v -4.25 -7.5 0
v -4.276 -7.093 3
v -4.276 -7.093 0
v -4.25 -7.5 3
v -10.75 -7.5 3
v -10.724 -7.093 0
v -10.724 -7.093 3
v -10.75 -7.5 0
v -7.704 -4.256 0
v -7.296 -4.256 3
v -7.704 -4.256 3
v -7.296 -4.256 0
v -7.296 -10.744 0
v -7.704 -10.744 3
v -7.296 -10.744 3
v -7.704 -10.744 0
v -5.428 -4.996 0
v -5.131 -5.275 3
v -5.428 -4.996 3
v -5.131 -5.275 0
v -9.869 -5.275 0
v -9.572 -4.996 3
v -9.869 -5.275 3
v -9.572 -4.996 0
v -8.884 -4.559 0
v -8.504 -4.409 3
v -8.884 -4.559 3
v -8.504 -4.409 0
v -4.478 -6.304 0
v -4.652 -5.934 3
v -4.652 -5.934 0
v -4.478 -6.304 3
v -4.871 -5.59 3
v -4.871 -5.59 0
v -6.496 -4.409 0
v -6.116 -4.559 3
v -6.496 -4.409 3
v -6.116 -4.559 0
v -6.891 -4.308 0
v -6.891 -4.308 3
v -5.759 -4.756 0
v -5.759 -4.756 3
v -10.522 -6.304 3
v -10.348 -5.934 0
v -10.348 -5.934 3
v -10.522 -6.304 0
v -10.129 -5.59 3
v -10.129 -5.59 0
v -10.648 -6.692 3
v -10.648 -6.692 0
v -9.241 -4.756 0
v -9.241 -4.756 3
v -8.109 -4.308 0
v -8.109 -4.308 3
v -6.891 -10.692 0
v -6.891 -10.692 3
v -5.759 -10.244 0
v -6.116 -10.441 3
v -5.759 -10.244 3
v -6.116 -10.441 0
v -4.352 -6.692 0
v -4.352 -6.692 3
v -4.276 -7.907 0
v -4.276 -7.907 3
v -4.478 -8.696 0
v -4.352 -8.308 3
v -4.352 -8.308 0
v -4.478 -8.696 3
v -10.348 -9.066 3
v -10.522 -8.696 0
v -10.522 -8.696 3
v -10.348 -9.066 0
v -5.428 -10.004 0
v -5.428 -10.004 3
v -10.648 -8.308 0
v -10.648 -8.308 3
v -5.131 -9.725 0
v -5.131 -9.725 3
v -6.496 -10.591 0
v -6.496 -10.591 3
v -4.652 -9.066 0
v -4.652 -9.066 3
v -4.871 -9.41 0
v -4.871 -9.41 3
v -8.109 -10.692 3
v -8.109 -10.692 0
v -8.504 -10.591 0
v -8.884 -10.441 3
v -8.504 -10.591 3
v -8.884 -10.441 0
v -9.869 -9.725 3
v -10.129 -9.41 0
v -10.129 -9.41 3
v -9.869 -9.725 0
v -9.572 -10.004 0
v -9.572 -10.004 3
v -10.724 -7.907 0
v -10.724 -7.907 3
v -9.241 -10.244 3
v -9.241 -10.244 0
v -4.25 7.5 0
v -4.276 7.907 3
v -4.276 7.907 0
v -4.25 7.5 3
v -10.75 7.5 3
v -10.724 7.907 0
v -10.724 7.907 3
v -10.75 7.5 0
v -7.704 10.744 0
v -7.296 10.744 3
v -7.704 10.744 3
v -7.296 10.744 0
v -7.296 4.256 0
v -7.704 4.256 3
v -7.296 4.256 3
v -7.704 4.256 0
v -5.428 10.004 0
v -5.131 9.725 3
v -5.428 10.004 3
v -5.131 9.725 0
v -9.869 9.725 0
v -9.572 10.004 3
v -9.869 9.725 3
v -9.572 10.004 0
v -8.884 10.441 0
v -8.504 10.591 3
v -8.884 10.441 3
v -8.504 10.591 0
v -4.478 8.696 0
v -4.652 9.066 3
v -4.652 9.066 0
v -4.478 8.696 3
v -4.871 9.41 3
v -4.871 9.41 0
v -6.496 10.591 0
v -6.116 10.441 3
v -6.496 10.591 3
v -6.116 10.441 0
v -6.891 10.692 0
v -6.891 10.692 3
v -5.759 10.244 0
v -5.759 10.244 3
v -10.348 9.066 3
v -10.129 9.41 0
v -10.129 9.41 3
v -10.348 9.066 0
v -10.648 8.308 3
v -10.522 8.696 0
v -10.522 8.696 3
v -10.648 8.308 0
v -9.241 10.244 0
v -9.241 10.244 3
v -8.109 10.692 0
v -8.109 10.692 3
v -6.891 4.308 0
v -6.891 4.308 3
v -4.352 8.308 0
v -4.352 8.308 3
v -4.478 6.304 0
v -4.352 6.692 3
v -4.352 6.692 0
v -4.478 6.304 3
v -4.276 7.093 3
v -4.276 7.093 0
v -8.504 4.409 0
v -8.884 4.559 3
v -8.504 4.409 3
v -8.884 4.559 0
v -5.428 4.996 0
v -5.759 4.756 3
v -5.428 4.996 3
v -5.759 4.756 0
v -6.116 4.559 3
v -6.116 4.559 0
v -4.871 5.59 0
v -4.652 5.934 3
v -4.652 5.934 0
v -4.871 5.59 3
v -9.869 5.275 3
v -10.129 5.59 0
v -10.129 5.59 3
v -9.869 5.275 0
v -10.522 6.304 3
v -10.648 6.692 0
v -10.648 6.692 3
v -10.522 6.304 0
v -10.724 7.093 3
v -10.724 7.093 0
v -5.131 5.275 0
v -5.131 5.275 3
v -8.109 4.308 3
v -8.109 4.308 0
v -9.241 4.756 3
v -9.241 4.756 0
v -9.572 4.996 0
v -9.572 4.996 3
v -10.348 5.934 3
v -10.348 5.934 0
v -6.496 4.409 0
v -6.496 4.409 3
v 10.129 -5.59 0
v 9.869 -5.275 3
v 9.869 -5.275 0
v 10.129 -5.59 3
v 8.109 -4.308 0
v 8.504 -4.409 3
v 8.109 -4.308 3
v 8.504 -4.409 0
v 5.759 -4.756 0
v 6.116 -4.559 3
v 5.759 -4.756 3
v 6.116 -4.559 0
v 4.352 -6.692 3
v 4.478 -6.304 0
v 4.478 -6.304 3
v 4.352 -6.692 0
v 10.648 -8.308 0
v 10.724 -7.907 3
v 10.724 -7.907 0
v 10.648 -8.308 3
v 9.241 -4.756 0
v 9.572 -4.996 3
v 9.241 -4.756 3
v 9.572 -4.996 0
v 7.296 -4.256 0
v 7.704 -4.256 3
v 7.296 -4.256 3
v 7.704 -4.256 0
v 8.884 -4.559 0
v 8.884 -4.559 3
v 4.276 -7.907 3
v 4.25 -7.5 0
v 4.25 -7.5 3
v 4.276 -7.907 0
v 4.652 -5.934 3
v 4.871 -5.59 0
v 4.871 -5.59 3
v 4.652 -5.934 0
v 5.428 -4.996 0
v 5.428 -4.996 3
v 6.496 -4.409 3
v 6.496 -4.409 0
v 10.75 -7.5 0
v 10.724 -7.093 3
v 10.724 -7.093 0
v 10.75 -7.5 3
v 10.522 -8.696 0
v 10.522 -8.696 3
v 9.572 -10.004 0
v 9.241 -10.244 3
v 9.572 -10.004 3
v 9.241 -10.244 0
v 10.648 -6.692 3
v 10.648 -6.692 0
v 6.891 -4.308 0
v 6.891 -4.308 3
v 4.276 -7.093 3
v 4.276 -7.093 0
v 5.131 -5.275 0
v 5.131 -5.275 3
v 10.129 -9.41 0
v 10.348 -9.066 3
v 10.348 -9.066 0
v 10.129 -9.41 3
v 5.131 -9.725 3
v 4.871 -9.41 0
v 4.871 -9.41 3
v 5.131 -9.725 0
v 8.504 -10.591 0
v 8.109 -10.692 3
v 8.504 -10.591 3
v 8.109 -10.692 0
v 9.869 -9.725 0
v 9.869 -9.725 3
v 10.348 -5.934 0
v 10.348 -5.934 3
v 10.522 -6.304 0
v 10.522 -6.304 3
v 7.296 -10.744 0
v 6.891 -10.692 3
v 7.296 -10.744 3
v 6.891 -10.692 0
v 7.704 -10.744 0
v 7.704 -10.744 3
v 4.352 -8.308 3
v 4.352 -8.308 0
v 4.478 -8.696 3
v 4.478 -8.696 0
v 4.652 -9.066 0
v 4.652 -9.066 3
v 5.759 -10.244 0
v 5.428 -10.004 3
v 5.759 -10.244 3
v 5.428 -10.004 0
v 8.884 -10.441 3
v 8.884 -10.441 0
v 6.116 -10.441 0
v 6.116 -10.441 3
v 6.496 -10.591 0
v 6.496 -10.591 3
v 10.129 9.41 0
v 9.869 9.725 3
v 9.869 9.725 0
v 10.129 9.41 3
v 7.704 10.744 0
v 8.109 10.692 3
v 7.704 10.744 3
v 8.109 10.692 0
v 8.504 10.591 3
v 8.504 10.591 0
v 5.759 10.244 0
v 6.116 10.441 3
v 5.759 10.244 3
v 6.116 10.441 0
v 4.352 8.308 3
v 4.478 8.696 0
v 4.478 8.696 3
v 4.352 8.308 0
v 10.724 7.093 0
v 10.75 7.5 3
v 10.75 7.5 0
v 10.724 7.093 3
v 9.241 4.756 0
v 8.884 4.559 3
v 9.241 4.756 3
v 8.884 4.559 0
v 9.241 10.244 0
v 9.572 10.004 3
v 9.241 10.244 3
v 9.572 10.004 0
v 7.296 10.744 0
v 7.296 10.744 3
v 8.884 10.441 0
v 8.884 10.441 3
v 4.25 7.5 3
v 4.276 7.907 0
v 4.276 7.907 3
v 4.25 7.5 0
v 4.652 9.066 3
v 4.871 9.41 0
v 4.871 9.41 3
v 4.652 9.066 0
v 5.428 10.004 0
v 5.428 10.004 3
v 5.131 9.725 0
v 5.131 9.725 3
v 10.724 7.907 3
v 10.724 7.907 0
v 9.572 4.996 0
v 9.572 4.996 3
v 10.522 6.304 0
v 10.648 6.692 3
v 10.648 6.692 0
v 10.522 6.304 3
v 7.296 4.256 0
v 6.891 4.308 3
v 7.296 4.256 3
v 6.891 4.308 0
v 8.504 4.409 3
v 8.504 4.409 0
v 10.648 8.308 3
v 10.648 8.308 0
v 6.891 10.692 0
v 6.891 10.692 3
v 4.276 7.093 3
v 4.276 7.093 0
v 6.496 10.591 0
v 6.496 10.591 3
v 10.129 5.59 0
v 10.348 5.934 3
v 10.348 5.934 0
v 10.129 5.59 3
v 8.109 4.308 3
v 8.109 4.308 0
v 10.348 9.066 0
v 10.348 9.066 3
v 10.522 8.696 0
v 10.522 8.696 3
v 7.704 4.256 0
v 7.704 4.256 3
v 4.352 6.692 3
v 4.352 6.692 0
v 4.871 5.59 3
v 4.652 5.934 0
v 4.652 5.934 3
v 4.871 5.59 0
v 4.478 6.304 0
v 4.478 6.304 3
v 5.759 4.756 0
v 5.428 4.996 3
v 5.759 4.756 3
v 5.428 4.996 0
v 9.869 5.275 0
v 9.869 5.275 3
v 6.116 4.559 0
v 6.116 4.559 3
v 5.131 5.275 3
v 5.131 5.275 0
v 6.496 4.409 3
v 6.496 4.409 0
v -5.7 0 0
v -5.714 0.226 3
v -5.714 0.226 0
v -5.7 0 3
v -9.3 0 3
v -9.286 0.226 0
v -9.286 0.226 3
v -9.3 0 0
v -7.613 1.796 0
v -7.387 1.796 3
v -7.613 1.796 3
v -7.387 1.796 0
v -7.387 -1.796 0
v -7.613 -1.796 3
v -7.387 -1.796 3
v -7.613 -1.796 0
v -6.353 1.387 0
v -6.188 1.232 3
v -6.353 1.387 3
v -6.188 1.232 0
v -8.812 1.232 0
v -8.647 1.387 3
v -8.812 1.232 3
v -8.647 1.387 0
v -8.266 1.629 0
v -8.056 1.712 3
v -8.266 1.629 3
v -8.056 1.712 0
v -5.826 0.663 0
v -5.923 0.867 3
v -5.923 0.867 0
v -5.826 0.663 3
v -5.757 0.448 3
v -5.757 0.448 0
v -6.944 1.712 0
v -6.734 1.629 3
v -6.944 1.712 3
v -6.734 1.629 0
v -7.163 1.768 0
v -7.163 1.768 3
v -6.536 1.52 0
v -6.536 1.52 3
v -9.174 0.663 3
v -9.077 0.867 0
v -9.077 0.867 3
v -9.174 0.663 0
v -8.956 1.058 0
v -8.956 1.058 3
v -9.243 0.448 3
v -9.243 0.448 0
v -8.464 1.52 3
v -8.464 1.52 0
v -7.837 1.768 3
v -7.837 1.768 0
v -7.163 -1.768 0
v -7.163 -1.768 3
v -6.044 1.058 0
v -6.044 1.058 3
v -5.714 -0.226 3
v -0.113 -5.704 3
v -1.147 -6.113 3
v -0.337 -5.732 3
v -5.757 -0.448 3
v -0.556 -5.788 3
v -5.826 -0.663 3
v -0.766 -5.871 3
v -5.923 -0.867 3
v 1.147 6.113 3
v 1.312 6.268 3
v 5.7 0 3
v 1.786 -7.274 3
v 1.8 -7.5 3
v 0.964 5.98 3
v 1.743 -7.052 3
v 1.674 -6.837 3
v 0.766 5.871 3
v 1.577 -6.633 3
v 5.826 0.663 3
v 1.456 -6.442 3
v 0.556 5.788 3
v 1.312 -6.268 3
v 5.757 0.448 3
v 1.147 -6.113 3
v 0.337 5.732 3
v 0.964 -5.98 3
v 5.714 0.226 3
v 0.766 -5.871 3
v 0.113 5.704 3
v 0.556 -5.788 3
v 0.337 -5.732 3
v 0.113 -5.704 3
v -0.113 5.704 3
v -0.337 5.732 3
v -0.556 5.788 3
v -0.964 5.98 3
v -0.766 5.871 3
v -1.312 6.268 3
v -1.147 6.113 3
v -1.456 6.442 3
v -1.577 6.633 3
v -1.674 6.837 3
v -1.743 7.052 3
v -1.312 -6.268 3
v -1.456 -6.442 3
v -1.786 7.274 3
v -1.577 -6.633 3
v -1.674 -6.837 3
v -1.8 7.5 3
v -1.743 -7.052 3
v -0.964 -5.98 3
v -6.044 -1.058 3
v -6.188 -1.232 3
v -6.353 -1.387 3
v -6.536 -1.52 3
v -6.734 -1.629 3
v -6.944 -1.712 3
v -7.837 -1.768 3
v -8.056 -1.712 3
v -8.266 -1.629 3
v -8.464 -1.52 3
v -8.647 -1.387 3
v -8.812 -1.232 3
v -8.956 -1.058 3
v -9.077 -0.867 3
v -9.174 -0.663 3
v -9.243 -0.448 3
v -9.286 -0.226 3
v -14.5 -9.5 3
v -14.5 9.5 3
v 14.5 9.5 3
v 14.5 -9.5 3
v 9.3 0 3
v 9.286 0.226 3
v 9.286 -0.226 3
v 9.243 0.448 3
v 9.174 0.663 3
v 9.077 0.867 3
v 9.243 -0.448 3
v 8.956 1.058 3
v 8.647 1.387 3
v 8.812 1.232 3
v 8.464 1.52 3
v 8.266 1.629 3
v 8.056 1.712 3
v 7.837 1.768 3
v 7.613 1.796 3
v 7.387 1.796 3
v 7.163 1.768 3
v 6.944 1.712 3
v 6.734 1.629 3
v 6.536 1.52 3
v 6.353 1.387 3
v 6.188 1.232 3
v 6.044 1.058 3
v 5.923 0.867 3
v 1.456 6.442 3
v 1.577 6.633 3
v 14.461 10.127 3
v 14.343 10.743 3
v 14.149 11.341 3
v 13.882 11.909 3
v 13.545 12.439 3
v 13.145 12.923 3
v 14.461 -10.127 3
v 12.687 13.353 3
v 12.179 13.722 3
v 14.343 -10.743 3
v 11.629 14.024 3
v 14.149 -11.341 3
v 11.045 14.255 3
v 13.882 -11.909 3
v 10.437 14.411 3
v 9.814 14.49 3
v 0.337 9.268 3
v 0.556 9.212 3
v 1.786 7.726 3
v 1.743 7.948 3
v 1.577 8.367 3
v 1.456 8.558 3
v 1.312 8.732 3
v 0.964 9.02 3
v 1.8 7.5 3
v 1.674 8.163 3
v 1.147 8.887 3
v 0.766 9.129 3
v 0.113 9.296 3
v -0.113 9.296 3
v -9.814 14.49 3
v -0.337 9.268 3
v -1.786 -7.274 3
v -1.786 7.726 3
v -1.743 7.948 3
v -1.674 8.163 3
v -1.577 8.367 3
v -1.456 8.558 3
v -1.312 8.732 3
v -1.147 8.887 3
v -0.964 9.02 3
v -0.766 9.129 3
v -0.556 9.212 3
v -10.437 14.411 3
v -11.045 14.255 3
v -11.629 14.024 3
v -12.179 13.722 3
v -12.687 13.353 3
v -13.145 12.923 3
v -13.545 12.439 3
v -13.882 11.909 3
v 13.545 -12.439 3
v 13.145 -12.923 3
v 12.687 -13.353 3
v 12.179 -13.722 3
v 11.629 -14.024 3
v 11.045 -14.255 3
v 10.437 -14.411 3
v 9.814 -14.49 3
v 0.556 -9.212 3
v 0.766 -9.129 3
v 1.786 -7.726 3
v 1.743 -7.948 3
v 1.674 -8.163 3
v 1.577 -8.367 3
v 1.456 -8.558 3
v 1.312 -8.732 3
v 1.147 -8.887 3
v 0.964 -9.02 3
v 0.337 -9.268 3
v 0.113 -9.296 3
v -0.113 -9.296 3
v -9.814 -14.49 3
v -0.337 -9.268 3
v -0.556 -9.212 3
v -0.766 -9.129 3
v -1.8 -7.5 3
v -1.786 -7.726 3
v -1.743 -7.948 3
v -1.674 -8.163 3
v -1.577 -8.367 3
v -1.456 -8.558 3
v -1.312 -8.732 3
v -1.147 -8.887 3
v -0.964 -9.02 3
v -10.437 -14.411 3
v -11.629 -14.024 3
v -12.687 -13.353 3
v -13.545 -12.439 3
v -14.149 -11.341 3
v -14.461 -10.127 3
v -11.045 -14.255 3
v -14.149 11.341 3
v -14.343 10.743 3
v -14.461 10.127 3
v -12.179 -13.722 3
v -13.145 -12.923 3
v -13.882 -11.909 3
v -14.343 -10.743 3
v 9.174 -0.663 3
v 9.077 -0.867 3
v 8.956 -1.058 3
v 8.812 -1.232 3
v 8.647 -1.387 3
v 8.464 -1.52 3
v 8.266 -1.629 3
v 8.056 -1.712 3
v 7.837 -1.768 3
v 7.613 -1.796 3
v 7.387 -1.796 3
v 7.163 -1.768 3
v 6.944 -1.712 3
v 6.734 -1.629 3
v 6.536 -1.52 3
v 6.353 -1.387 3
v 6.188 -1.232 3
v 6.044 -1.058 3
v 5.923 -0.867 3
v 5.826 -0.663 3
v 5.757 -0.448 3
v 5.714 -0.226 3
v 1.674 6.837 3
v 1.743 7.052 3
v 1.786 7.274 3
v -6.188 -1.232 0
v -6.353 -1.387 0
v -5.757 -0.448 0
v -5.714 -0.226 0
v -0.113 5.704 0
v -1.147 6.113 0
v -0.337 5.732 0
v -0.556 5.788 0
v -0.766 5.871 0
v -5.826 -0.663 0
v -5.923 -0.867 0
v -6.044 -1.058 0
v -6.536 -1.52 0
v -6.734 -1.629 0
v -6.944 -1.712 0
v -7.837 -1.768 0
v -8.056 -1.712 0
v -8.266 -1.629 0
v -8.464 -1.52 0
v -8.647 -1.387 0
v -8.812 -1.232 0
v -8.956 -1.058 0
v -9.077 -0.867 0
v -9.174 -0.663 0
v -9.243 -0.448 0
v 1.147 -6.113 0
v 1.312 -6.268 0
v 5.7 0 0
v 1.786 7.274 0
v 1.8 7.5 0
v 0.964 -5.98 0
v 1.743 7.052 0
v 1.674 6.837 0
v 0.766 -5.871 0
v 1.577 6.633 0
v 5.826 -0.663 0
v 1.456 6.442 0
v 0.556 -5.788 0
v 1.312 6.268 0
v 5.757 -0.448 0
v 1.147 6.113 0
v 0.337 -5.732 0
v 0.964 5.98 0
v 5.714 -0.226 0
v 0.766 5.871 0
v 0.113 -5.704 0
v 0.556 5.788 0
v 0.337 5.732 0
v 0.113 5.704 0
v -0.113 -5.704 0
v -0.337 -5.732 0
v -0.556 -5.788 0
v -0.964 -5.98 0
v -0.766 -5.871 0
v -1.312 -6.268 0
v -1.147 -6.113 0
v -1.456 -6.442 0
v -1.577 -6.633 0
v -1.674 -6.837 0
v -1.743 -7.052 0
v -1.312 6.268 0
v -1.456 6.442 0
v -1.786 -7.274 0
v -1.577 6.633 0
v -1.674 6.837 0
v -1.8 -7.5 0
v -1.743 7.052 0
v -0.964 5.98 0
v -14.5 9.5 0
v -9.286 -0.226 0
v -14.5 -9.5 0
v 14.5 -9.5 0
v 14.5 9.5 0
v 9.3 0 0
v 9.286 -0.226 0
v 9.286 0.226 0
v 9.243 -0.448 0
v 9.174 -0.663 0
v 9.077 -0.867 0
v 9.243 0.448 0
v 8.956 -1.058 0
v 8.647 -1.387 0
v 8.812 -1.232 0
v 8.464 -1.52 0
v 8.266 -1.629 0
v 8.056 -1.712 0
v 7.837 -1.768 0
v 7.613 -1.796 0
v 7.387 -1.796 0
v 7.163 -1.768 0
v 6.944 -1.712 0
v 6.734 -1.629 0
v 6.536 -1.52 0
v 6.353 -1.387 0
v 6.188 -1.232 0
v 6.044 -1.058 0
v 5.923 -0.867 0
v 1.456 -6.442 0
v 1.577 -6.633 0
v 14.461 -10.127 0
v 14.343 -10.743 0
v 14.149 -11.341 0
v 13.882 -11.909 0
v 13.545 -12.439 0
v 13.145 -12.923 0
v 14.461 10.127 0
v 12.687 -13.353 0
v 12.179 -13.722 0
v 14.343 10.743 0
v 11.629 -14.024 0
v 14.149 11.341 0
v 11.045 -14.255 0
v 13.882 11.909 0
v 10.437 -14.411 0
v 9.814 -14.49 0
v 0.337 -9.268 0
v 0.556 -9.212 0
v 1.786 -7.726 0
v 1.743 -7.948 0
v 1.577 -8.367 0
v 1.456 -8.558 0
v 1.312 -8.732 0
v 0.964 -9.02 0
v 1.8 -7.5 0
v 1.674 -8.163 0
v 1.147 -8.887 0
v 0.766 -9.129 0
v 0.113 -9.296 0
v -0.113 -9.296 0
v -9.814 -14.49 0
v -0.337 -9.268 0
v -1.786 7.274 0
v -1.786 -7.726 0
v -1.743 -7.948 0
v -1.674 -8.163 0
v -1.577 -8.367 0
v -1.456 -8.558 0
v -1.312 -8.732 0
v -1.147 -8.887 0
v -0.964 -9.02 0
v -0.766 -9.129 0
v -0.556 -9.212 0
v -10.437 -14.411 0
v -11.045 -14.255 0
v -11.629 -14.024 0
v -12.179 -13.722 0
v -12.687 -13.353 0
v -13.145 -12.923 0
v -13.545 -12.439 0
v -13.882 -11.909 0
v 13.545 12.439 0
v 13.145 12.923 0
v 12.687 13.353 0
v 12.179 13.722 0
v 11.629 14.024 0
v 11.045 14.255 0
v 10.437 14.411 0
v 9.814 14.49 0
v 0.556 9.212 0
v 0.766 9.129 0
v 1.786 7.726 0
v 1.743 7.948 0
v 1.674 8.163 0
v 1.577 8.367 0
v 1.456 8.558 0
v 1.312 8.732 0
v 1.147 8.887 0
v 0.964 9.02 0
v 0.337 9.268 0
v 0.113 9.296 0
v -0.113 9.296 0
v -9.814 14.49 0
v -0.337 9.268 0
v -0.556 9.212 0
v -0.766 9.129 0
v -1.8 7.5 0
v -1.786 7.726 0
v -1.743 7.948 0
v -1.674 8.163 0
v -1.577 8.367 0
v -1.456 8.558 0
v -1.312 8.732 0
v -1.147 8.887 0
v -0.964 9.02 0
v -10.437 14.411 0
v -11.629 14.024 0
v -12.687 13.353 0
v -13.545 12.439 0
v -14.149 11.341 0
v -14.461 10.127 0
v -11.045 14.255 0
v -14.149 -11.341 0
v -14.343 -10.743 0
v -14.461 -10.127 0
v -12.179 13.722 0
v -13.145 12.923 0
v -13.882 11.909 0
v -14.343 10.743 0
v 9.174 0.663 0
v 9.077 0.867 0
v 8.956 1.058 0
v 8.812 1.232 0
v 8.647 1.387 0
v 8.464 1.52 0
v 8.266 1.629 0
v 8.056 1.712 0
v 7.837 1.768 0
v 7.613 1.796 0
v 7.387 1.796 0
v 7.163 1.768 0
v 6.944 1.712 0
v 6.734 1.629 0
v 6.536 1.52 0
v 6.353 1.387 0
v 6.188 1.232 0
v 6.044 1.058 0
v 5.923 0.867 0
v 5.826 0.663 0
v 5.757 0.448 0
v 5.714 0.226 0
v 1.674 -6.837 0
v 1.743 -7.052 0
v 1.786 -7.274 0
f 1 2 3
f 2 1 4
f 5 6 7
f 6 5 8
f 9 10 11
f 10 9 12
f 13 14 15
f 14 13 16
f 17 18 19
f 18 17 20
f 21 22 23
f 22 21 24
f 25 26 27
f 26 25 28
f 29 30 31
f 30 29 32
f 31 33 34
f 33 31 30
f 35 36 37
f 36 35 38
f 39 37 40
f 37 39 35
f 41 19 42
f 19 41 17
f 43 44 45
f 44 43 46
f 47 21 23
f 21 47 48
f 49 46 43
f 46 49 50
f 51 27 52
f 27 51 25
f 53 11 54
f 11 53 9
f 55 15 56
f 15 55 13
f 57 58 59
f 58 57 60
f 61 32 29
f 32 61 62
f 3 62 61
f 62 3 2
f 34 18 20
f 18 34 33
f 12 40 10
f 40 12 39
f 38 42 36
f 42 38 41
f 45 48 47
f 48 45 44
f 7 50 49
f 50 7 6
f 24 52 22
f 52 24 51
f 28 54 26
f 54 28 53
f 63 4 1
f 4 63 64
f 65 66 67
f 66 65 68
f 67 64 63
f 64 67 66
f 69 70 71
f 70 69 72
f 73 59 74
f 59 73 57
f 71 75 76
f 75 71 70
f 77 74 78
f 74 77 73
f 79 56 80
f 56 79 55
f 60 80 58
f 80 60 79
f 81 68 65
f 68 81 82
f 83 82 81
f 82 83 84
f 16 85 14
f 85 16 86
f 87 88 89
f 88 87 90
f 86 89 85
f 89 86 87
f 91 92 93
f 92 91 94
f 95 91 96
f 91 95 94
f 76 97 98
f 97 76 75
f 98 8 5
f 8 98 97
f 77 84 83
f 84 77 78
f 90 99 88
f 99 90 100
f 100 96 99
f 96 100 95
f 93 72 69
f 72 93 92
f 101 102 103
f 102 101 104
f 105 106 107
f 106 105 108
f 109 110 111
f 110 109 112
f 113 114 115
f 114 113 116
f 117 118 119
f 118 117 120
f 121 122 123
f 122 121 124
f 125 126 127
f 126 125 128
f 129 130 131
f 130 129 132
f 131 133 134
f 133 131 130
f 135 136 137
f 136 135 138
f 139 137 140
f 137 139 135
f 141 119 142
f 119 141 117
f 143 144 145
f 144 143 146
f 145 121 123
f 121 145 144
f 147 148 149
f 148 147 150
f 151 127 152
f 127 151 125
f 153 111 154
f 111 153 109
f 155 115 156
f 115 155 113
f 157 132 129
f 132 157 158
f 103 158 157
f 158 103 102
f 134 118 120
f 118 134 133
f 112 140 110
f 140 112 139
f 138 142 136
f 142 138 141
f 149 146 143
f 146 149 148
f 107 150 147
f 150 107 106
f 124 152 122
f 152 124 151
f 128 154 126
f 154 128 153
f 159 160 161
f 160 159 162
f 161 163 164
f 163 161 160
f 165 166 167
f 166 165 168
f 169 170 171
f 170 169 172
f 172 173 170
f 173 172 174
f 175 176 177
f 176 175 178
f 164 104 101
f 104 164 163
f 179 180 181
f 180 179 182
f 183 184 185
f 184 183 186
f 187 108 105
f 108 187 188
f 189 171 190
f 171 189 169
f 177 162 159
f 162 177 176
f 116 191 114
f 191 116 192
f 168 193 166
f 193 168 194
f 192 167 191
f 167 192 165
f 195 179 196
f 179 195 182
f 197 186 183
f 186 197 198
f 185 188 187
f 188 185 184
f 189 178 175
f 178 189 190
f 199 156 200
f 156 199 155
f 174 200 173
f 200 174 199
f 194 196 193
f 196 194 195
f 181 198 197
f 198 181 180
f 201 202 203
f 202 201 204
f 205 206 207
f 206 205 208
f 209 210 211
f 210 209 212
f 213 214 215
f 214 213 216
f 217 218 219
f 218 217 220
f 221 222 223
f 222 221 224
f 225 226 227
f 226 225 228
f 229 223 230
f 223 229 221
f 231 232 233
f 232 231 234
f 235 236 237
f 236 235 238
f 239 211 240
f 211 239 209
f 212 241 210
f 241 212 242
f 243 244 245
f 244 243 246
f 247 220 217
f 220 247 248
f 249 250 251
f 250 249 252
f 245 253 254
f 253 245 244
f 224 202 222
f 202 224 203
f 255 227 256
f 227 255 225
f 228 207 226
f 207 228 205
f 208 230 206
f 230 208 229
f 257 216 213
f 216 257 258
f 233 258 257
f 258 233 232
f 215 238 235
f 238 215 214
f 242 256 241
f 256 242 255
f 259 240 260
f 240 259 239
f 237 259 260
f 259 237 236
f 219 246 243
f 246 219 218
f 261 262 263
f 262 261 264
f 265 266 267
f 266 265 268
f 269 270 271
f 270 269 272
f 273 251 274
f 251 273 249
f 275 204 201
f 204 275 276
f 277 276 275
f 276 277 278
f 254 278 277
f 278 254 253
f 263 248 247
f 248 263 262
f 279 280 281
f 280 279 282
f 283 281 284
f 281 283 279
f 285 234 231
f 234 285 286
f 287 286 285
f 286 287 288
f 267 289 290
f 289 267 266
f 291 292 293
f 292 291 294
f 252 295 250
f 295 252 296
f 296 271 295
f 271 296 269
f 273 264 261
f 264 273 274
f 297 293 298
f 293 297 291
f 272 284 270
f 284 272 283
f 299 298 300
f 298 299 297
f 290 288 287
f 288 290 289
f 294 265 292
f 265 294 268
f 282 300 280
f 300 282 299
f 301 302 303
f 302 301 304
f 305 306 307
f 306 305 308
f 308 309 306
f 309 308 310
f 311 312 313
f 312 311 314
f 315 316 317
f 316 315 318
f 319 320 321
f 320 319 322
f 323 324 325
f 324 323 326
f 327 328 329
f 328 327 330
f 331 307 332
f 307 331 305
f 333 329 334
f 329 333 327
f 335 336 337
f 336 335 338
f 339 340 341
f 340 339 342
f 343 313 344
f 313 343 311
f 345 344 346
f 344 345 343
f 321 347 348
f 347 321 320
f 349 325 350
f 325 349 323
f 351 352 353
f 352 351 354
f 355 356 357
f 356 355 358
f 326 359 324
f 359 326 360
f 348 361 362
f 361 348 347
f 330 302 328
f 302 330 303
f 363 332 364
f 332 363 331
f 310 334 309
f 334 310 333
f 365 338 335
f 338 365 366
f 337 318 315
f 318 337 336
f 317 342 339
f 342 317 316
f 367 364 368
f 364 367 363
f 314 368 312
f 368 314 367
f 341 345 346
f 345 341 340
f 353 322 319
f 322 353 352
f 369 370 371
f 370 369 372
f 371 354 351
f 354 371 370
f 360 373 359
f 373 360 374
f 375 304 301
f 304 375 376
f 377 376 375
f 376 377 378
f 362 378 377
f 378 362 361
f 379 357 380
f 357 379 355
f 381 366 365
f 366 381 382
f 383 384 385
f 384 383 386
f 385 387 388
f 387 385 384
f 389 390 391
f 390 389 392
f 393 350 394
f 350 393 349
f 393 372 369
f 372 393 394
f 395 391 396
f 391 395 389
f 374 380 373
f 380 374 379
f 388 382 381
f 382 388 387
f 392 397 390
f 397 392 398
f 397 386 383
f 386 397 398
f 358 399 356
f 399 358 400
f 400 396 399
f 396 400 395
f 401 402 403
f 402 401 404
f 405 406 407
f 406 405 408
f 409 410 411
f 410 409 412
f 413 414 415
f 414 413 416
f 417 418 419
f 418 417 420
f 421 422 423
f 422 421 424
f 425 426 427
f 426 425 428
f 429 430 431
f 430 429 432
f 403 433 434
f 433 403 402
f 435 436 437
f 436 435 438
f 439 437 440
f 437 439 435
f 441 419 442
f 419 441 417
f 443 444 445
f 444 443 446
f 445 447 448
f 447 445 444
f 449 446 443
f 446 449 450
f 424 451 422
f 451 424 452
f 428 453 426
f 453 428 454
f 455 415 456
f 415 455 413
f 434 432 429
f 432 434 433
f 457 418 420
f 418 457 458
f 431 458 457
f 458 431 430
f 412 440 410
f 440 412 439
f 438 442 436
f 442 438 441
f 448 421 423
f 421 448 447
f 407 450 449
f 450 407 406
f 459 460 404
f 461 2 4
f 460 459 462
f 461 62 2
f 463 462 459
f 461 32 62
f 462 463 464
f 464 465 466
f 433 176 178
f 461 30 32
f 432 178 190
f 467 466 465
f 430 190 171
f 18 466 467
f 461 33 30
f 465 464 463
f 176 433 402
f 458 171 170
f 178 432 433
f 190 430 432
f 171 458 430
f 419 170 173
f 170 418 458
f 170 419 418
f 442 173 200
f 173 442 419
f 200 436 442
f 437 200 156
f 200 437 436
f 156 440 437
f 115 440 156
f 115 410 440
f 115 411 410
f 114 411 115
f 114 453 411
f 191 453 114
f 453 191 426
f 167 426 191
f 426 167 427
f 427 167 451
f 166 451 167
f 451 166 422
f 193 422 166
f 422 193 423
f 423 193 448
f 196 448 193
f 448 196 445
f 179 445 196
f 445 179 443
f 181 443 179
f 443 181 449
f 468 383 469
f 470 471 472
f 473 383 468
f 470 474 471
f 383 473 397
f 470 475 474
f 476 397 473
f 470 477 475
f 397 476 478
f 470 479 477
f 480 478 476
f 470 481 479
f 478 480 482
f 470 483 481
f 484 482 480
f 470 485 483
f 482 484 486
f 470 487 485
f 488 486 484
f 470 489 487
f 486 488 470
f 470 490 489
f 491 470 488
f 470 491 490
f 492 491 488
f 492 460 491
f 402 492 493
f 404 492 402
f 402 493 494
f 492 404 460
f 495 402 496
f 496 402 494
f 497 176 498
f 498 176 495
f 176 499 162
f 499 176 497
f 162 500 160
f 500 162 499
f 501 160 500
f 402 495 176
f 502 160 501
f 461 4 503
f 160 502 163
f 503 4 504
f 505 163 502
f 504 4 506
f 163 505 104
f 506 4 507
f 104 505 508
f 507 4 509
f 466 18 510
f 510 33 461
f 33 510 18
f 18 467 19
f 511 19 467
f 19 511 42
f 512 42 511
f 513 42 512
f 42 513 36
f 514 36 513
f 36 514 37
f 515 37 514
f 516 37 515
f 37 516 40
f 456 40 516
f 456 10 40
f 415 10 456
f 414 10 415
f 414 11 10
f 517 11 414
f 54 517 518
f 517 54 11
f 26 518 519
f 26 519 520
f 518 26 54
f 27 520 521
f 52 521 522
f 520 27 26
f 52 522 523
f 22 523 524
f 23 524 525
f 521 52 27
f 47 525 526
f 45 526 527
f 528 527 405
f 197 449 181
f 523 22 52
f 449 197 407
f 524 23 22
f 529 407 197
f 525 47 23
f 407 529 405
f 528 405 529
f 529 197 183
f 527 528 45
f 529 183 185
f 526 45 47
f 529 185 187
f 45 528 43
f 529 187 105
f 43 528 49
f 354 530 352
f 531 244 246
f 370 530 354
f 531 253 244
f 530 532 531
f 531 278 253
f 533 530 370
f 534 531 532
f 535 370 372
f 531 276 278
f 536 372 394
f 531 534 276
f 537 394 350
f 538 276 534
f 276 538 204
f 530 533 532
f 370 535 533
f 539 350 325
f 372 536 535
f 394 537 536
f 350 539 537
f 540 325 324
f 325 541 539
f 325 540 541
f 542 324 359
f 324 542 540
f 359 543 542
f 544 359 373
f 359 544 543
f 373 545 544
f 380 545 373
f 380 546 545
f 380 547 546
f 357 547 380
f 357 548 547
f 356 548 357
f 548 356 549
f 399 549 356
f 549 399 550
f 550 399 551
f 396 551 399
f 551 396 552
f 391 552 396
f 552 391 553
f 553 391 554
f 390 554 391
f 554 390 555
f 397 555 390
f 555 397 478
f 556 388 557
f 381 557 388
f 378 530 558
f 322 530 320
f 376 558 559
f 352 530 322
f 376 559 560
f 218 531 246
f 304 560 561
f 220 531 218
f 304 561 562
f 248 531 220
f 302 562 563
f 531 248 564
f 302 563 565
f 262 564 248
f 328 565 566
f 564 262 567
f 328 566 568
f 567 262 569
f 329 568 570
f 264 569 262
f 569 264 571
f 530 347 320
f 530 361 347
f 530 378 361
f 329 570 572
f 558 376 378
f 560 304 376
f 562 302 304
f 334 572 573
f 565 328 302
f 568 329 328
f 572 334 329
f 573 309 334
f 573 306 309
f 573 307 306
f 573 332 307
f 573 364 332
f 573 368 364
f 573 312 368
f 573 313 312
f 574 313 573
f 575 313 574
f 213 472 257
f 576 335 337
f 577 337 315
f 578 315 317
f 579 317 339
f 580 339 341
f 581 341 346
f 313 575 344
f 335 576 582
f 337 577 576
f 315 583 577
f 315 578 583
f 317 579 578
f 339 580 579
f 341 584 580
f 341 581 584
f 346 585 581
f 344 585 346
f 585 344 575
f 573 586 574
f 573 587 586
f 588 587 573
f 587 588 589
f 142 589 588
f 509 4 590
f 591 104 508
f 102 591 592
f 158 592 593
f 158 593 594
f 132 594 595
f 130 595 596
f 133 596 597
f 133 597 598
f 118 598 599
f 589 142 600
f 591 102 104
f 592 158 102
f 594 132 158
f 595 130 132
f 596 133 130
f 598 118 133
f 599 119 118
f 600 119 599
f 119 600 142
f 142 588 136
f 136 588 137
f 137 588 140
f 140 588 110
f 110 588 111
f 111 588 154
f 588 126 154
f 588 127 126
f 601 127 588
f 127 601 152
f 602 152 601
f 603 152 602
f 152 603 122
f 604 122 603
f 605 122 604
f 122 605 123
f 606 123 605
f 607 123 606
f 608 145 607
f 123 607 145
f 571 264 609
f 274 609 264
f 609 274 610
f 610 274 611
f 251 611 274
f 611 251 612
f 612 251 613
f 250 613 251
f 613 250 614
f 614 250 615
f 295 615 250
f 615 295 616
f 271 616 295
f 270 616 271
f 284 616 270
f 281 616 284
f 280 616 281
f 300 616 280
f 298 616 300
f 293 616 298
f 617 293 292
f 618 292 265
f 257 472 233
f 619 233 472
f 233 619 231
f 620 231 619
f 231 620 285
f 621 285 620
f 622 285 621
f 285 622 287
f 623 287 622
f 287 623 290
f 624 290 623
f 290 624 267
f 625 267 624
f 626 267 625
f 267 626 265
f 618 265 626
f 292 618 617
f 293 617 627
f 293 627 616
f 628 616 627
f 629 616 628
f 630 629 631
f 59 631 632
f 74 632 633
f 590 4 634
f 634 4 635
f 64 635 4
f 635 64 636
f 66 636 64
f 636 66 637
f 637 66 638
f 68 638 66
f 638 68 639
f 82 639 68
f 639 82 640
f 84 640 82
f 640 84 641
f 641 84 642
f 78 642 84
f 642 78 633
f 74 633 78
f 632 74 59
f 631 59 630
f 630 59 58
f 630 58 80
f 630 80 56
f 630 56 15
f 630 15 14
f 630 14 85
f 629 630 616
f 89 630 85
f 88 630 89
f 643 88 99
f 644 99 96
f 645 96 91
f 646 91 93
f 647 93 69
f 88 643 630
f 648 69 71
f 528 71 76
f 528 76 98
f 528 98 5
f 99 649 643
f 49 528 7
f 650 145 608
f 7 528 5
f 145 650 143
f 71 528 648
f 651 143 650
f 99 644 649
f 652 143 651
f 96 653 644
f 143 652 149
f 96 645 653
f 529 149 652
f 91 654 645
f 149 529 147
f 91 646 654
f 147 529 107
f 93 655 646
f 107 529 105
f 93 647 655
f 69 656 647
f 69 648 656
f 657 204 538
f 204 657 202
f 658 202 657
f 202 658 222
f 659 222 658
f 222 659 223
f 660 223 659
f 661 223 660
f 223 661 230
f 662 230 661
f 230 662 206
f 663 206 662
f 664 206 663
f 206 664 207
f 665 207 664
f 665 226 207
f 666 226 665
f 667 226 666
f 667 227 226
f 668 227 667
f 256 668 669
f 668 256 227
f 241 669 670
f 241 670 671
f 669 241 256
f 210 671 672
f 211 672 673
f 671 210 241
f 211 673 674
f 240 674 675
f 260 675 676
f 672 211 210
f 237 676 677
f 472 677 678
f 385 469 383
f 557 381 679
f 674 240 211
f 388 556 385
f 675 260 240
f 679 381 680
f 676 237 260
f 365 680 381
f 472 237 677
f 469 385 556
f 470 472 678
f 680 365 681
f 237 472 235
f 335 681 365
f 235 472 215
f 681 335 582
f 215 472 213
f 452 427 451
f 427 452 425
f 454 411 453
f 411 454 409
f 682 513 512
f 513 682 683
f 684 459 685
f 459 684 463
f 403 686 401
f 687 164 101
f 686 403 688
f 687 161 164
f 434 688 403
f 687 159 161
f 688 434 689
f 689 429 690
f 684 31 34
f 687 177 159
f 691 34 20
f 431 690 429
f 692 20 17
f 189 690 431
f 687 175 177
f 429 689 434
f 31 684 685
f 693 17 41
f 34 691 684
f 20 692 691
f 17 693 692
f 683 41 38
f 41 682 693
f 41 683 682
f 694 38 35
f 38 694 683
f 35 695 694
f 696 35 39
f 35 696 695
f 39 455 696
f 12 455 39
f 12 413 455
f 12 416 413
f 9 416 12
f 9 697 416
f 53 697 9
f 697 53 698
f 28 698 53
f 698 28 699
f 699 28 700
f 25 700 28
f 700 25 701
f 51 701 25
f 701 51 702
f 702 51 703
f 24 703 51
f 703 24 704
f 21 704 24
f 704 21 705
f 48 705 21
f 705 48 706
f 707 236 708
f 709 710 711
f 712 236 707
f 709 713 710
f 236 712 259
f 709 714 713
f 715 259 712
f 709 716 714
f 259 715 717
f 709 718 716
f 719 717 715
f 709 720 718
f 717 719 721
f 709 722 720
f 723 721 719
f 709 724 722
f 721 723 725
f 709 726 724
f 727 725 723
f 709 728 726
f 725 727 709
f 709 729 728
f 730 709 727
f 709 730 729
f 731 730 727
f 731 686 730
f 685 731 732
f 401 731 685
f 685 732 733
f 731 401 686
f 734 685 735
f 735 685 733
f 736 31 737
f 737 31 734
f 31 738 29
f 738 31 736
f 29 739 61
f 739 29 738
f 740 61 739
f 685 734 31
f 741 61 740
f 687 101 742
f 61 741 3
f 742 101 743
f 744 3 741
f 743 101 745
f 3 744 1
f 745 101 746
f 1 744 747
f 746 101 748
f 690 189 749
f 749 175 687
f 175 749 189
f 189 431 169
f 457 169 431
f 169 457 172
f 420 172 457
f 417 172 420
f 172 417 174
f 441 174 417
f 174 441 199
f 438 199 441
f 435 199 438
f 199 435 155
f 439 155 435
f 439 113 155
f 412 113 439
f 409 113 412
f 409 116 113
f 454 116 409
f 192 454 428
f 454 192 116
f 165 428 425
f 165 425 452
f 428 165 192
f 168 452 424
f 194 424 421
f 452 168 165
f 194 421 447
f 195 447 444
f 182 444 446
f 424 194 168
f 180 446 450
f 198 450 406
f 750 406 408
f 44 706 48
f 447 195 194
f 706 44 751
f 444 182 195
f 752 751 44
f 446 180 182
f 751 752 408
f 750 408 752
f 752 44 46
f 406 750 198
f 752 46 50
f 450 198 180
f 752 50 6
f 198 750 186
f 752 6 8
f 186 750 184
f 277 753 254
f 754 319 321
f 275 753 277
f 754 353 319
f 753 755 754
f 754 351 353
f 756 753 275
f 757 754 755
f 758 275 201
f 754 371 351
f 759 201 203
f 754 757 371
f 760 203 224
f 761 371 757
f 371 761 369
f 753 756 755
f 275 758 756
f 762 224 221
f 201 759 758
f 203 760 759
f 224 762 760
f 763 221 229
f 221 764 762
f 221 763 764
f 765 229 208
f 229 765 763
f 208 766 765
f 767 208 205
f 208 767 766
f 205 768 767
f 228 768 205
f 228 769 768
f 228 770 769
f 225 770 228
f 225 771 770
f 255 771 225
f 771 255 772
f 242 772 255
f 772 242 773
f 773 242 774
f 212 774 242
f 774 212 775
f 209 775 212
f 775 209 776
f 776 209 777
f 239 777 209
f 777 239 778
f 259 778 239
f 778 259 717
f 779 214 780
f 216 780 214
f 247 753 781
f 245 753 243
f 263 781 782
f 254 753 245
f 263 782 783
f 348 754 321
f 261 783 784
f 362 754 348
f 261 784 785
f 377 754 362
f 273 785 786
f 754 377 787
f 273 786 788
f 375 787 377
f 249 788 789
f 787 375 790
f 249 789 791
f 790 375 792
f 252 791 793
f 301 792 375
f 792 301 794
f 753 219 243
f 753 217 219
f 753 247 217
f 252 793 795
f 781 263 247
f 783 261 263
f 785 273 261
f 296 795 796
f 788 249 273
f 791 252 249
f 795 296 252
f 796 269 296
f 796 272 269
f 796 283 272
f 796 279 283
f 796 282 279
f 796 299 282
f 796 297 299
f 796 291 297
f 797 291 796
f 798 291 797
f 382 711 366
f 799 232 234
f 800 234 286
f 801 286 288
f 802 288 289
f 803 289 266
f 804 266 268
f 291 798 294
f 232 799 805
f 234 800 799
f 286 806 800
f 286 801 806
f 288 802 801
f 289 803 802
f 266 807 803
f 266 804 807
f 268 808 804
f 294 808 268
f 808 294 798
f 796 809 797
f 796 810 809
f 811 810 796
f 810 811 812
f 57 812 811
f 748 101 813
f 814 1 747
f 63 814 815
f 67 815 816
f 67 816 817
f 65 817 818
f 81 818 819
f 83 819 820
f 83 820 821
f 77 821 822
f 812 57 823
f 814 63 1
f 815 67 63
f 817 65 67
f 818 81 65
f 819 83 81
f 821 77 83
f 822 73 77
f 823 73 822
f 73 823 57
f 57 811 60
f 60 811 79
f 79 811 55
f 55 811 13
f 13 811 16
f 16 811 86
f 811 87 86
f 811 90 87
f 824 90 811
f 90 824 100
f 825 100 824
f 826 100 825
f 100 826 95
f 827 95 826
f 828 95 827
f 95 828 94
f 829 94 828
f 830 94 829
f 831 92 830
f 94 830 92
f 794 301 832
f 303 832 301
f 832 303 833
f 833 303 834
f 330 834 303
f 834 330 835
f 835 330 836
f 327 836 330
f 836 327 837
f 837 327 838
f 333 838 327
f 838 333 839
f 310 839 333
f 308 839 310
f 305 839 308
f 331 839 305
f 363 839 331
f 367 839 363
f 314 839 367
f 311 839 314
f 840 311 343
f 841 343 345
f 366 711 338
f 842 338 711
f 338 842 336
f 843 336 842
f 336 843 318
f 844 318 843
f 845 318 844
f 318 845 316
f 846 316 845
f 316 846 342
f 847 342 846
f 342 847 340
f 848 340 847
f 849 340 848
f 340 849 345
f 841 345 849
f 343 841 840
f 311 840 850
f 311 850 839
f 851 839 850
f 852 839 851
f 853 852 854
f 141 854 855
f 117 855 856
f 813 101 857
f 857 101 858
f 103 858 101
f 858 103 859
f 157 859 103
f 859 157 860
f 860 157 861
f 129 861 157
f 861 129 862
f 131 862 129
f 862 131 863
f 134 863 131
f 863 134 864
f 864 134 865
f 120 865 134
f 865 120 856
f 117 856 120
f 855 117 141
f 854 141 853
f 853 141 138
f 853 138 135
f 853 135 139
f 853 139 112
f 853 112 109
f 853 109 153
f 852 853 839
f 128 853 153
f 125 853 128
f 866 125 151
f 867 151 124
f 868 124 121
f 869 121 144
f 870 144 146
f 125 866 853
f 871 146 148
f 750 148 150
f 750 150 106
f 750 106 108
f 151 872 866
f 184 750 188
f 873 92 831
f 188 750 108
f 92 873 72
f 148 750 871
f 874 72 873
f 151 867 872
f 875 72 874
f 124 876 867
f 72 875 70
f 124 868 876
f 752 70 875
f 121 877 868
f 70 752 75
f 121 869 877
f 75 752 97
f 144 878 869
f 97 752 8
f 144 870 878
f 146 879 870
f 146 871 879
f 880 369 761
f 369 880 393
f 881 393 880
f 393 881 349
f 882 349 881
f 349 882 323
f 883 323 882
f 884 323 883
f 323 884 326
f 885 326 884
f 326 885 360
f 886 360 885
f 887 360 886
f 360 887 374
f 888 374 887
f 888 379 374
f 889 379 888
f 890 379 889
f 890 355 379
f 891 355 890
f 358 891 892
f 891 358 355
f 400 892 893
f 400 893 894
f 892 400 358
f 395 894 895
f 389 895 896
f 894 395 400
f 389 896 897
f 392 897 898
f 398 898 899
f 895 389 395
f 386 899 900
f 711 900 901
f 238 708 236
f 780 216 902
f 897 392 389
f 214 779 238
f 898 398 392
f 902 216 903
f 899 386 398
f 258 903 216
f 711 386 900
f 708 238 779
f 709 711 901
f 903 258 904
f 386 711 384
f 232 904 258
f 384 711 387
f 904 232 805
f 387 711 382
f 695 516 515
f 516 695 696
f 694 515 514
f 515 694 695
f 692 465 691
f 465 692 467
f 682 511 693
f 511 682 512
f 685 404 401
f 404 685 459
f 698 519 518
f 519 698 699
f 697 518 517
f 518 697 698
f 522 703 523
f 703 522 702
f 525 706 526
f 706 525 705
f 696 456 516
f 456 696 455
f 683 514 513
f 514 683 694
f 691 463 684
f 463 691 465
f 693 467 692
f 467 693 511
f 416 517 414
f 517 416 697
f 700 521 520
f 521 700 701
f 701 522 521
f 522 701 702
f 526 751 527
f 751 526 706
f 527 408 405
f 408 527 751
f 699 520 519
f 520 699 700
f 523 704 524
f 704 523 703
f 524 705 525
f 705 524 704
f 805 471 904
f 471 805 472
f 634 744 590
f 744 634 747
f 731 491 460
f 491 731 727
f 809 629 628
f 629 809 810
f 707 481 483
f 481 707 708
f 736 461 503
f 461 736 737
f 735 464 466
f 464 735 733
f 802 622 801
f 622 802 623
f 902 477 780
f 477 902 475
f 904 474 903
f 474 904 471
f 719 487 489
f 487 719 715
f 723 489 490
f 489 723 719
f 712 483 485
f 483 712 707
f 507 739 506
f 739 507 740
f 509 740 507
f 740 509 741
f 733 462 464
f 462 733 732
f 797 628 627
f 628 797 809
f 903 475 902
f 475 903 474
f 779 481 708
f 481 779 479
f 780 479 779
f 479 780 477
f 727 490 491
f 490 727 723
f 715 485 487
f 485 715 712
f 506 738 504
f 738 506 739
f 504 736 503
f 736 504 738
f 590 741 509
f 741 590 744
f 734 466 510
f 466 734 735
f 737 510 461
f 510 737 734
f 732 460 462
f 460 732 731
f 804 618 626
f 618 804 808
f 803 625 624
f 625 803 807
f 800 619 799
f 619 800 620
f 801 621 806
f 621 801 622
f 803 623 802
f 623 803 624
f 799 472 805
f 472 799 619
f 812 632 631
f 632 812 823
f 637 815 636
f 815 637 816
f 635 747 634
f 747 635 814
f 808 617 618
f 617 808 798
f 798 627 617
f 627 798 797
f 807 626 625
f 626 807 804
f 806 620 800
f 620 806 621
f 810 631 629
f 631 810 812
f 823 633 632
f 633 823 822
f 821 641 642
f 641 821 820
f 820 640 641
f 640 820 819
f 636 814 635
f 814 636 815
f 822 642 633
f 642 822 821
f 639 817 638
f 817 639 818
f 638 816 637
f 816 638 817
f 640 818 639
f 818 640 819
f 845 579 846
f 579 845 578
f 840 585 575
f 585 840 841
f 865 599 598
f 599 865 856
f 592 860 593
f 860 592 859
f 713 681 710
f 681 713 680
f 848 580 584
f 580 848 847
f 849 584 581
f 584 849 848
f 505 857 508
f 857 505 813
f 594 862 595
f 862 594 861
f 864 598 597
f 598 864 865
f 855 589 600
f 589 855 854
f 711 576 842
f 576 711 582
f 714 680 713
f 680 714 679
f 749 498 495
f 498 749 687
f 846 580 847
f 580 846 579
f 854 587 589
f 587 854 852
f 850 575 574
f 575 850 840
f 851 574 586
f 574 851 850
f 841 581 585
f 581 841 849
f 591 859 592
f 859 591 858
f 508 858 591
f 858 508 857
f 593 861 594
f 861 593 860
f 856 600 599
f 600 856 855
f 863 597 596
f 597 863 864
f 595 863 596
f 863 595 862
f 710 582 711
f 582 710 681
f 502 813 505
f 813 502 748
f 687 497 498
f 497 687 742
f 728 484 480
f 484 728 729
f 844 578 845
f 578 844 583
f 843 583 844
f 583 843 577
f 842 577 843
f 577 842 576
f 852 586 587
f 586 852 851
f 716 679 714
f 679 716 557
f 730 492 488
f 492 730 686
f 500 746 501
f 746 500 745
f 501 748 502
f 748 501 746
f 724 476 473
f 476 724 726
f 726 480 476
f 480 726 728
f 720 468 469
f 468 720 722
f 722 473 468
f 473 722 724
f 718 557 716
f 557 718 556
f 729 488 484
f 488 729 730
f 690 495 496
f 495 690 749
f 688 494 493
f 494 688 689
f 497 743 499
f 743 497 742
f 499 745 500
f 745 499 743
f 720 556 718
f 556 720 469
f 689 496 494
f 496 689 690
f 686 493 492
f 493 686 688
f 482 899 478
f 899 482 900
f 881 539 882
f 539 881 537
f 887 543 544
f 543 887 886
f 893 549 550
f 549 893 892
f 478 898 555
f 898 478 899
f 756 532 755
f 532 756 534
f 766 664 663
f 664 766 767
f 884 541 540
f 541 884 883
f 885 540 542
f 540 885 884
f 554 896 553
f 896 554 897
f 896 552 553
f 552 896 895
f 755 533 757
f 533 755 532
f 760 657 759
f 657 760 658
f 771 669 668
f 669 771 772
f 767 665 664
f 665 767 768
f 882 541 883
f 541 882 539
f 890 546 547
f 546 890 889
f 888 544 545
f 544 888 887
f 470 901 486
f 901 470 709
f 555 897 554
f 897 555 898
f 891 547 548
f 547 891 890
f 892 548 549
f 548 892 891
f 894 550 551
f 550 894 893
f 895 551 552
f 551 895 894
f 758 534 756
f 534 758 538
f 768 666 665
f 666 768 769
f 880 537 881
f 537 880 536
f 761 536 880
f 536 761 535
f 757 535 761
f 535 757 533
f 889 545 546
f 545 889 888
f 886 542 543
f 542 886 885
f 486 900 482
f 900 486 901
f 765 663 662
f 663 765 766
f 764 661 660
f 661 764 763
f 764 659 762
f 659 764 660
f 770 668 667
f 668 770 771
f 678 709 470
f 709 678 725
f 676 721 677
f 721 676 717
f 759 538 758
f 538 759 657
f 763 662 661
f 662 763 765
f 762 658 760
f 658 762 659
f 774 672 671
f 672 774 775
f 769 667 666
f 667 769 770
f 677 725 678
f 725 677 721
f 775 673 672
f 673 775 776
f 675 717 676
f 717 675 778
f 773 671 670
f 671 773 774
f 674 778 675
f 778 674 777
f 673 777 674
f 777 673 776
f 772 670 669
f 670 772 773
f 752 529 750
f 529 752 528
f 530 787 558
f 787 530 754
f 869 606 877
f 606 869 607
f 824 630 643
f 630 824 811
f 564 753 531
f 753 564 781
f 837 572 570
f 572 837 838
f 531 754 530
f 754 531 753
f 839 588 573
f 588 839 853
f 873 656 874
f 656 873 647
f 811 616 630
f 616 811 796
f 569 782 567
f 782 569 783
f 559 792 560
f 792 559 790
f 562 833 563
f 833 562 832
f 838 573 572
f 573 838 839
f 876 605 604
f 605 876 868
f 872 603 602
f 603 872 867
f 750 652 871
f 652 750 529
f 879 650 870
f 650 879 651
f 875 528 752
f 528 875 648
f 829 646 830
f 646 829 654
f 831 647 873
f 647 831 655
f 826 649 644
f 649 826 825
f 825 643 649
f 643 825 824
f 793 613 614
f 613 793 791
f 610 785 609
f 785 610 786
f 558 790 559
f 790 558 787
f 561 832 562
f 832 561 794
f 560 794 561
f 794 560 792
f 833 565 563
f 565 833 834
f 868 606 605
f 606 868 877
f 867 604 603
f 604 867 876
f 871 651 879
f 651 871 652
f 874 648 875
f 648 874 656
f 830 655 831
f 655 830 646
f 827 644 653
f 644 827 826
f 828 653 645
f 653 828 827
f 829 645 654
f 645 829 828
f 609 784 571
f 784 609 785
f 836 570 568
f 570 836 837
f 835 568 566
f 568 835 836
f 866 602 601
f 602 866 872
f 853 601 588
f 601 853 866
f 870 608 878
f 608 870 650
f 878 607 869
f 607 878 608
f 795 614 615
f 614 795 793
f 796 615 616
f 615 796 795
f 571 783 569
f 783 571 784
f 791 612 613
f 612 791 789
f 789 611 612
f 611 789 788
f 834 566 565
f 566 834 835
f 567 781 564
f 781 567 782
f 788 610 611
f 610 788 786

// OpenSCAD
$fn = 50;


difference() {
	union() {
		hull() {
			translate(v = [-9.5000000000, 9.5000000000, 0]) {
				cylinder(h = 3, r = 5);
			}
			translate(v = [9.5000000000, 9.5000000000, 0]) {
				cylinder(h = 3, r = 5);
			}
			translate(v = [-9.5000000000, -9.5000000000, 0]) {
				cylinder(h = 3, r = 5);
			}
			translate(v = [9.5000000000, -9.5000000000, 0]) {
				cylinder(h = 3, r = 5);
			}
		}
	}
	union() {
		translate(v = [-7.5000000000, -7.5000000000, -100.0000000000]) {
			cylinder(h = 200, r = 3.2500000000);
		}
		translate(v = [-7.5000000000, 7.5000000000, -100.0000000000]) {
			cylinder(h = 200, r = 3.2500000000);
		}
		translate(v = [7.5000000000, -7.5000000000, -100.0000000000]) {
			cylinder(h = 200, r = 3.2500000000);
		}
		translate(v = [7.5000000000, 7.5000000000, -100.0000000000]) {
			cylinder(h = 200, r = 3.2500000000);
		}
		translate(v = [-7.5000000000, -7.5000000000, 0]) {
			cylinder(h = 3, r = 1.8000000000);
		}
		translate(v = [-7.5000000000, 0.0000000000, 0]) {
			cylinder(h = 3, r = 1.8000000000);
		}
		translate(v = [-7.5000000000, 7.5000000000, 0]) {
			cylinder(h = 3, r = 1.8000000000);
		}
		translate(v = [0.0000000000, -7.5000000000, 0]) {
			cylinder(h = 3, r = 1.8000000000);
		}
		translate(v = [0.0000000000, 7.5000000000, 0]) {
			cylinder(h = 3, r = 1.8000000000);
		}
		translate(v = [7.5000000000, -7.5000000000, 0]) {
			cylinder(h = 3, r = 1.8000000000);
		}
		translate(v = [7.5000000000, 0.0000000000, 0]) {
			cylinder(h = 3, r = 1.8000000000);
		}
		translate(v = [7.5000000000, 7.5000000000, 0]) {
			cylinder(h = 3, r = 1.8000000000);
		}
		translate(v = [-7.5000000000, -7.5000000000, 0]) {
			cylinder(h = 3, r = 1.8000000000);
		}
		translate(v = [-7.5000000000, 0.0000000000, 0]) {
			cylinder(h = 3, r = 1.8000000000);
		}
		translate(v = [-7.5000000000, 7.5000000000, 0]) {
			cylinder(h = 3, r = 1.8000000000);
		}
		translate(v = [0.0000000000, -7.5000000000, 0]) {
			cylinder(h = 3, r = 1.8000000000);
		}
		translate(v = [0.0000000000, 7.5000000000, 0]) {
			cylinder(h = 3, r = 1.8000000000);
		}
		translate(v = [7.5000000000, -7.5000000000, 0]) {
			cylinder(h = 3, r = 1.8000000000);
		}
		translate(v = [7.5000000000, 0.0000000000, 0]) {
			cylinder(h = 3, r = 1.8000000000);
		}
		translate(v = [7.5000000000, 7.5000000000, 0]) {
			cylinder(h = 3, r = 1.8000000000);
		}
		translate(v = [-7.5000000000, -7.5000000000, 0]) {
			cylinder(h = 3, r = 1.8000000000);
		}
		translate(v = [-7.5000000000, 0.0000000000, 0]) {
			cylinder(h = 3, r = 1.8000000000);
		}
		translate(v = [-7.5000000000, 7.5000000000, 0]) {
			cylinder(h = 3, r = 1.8000000000);
		}
		translate(v = [0.0000000000, -7.5000000000, 0]) {
			cylinder(h = 3, r = 1.8000000000);
		}
		translate(v = [0.0000000000, 7.5000000000, 0]) {
			cylinder(h = 3, r = 1.8000000000);
		}
		translate(v = [7.5000000000, -7.5000000000, 0]) {
			cylinder(h = 3, r = 1.8000000000);
		}
		translate(v = [7.5000000000, 0.0000000000, 0]) {
			cylinder(h = 3, r = 1.8000000000);
		}
		translate(v = [7.5000000000, 7.5000000000, 0]) {
			cylinder(h = 3, r = 1.8000000000);
		}
	}
}
